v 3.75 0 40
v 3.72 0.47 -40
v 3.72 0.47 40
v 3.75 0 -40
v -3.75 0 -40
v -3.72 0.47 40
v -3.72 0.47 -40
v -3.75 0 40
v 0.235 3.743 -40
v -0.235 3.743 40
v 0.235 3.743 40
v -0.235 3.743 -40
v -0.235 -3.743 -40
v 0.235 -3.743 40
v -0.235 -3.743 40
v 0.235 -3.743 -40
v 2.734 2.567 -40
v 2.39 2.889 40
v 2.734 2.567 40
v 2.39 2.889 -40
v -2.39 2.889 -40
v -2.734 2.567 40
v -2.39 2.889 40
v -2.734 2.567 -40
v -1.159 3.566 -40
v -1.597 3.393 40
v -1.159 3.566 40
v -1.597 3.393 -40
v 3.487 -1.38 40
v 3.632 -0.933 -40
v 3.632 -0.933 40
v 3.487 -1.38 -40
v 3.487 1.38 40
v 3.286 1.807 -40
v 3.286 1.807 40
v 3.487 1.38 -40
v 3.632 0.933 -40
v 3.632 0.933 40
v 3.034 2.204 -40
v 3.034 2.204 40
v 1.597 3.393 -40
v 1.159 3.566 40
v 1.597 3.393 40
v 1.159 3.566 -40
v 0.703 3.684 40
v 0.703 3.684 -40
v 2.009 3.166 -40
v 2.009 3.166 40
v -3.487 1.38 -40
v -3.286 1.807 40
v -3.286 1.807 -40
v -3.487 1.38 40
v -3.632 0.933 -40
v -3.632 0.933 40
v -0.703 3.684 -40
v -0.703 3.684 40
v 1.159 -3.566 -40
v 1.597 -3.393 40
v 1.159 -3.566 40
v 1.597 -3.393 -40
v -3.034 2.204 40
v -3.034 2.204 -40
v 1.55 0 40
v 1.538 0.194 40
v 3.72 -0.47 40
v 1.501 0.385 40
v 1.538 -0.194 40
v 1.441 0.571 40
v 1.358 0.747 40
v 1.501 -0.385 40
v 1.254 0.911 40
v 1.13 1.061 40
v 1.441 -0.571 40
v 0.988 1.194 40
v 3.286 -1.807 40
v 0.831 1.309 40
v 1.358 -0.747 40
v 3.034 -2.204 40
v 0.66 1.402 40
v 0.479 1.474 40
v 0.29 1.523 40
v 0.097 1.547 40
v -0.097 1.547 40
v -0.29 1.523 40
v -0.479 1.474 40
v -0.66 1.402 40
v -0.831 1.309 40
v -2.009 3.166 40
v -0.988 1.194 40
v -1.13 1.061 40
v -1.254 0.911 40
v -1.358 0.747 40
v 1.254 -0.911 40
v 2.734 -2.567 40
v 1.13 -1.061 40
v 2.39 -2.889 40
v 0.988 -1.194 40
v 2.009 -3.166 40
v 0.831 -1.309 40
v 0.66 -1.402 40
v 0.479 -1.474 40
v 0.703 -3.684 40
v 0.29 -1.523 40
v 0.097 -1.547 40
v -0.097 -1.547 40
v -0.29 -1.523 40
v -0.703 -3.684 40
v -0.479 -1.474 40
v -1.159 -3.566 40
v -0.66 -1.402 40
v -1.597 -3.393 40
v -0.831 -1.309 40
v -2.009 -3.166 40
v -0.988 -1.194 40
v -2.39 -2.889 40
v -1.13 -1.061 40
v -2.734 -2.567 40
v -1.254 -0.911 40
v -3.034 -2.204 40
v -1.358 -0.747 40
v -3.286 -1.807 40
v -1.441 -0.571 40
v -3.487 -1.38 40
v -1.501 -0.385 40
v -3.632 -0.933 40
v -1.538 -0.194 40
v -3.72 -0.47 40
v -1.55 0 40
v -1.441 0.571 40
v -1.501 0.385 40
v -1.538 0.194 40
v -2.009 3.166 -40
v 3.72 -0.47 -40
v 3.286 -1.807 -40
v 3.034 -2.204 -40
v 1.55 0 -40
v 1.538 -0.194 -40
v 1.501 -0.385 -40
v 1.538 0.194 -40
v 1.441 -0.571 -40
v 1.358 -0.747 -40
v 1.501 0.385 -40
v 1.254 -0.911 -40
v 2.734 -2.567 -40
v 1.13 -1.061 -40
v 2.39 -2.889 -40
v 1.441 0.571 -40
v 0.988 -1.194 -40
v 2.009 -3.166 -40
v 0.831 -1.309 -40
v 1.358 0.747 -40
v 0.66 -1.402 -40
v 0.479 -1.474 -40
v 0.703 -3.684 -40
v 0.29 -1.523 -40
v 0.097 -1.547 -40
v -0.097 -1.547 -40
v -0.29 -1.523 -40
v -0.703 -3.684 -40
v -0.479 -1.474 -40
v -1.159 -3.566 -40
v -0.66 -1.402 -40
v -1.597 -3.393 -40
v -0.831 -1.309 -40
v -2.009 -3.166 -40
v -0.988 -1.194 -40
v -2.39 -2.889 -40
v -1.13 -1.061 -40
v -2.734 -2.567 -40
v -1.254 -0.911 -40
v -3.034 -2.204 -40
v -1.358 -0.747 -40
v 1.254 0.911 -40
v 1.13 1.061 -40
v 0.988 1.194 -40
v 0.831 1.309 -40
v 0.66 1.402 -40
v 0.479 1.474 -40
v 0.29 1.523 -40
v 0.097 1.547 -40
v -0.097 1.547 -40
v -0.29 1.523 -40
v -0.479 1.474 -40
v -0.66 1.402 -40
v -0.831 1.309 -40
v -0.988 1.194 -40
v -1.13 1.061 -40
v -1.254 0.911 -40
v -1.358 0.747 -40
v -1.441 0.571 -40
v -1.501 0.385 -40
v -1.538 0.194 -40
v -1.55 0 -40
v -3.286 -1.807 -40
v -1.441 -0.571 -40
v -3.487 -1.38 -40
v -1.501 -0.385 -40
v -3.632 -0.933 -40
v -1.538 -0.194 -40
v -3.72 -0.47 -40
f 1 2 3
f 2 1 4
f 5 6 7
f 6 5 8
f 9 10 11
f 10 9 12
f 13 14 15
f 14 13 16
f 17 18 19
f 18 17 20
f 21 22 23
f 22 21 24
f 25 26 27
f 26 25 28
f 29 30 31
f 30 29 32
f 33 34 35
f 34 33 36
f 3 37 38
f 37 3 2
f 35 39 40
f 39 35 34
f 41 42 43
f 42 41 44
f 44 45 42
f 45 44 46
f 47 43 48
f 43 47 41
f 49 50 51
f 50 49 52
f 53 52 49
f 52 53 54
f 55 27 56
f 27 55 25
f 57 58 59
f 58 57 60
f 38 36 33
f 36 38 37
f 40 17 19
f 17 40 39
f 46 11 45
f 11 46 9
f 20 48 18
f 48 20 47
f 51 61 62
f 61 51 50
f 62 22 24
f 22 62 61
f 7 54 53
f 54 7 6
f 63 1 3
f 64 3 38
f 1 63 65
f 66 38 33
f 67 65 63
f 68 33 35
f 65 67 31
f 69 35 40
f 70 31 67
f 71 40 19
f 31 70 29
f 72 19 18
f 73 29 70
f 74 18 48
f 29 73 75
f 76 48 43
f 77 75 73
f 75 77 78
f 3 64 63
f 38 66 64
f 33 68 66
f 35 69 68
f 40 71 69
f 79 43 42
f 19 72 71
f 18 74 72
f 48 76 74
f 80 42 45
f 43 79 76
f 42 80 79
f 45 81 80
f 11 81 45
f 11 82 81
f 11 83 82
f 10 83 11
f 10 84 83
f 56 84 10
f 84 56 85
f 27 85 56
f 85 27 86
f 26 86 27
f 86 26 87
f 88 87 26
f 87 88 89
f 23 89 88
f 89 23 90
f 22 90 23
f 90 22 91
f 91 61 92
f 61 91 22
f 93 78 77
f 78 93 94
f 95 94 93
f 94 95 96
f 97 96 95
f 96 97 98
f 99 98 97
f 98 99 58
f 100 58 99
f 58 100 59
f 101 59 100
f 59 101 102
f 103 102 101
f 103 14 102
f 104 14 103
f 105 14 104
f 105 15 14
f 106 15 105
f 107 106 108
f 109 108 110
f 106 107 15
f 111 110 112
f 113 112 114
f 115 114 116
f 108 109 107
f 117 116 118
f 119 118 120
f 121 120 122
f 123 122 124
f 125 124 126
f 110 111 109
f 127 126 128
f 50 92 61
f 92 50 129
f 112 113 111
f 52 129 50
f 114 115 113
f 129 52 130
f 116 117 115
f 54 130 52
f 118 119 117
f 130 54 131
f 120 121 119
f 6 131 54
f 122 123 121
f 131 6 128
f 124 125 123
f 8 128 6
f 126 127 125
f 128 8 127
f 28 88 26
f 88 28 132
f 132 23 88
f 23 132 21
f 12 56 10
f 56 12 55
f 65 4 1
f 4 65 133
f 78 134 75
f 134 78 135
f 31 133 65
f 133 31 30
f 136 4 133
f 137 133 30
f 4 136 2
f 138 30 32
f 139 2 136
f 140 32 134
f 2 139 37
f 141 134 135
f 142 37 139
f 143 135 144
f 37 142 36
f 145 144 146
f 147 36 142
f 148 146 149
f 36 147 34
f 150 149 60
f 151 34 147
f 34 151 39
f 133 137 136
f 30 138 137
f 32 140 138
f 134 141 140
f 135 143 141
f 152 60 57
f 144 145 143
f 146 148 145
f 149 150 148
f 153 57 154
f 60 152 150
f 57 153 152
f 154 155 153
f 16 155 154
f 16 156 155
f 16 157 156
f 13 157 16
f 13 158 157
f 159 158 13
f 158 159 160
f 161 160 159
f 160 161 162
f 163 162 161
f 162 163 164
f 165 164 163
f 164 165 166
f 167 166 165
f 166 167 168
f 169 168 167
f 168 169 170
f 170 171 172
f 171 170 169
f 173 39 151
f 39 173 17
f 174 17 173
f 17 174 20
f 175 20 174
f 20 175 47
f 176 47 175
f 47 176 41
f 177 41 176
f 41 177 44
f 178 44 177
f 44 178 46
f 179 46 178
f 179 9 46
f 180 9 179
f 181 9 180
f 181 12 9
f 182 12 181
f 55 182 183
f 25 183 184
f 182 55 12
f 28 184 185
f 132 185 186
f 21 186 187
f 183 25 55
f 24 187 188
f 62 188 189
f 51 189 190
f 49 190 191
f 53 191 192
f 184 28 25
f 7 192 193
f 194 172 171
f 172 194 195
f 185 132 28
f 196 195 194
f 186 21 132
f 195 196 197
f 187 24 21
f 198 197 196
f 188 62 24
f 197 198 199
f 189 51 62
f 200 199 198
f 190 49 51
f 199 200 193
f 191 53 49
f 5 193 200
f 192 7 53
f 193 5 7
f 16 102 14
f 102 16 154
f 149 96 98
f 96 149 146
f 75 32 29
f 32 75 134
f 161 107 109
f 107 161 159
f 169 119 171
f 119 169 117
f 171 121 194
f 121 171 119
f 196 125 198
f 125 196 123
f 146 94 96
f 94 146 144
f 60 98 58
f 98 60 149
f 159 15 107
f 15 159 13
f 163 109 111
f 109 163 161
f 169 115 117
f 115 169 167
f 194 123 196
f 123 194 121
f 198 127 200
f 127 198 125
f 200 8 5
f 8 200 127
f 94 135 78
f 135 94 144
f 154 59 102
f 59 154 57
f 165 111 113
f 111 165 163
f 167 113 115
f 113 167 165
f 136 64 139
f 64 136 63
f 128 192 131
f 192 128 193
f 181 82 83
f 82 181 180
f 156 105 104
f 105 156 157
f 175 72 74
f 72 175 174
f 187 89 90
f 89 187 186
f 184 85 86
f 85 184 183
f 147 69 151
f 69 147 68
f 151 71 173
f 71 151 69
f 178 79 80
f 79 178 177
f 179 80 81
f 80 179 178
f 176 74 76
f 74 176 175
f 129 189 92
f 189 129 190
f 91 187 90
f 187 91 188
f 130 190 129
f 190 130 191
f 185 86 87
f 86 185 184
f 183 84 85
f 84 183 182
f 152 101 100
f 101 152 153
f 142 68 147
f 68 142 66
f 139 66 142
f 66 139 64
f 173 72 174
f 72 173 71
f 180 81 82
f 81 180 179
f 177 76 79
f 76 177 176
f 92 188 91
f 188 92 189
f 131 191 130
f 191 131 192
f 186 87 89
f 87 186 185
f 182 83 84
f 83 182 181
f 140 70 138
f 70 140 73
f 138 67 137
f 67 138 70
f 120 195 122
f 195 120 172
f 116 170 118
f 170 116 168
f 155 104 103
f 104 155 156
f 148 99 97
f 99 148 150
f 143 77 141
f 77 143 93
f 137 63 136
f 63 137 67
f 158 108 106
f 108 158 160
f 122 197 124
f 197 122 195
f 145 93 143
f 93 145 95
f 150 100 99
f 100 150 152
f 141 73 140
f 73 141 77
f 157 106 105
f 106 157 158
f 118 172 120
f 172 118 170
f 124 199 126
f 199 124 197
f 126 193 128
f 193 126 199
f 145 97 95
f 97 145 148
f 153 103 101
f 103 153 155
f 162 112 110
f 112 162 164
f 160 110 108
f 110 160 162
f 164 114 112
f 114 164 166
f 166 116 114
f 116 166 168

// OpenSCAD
$fn = 50;


difference() {
	union() {
		translate(v = [0, 0, -40.0000000000]) {
			cylinder(h = 80, r = 3.7500000000);
		}
	}
	union() {
		translate(v = [0, 0, -100.0000000000]) {
			cylinder(h = 200, r = 1.5500000000);
		}
	}
}
